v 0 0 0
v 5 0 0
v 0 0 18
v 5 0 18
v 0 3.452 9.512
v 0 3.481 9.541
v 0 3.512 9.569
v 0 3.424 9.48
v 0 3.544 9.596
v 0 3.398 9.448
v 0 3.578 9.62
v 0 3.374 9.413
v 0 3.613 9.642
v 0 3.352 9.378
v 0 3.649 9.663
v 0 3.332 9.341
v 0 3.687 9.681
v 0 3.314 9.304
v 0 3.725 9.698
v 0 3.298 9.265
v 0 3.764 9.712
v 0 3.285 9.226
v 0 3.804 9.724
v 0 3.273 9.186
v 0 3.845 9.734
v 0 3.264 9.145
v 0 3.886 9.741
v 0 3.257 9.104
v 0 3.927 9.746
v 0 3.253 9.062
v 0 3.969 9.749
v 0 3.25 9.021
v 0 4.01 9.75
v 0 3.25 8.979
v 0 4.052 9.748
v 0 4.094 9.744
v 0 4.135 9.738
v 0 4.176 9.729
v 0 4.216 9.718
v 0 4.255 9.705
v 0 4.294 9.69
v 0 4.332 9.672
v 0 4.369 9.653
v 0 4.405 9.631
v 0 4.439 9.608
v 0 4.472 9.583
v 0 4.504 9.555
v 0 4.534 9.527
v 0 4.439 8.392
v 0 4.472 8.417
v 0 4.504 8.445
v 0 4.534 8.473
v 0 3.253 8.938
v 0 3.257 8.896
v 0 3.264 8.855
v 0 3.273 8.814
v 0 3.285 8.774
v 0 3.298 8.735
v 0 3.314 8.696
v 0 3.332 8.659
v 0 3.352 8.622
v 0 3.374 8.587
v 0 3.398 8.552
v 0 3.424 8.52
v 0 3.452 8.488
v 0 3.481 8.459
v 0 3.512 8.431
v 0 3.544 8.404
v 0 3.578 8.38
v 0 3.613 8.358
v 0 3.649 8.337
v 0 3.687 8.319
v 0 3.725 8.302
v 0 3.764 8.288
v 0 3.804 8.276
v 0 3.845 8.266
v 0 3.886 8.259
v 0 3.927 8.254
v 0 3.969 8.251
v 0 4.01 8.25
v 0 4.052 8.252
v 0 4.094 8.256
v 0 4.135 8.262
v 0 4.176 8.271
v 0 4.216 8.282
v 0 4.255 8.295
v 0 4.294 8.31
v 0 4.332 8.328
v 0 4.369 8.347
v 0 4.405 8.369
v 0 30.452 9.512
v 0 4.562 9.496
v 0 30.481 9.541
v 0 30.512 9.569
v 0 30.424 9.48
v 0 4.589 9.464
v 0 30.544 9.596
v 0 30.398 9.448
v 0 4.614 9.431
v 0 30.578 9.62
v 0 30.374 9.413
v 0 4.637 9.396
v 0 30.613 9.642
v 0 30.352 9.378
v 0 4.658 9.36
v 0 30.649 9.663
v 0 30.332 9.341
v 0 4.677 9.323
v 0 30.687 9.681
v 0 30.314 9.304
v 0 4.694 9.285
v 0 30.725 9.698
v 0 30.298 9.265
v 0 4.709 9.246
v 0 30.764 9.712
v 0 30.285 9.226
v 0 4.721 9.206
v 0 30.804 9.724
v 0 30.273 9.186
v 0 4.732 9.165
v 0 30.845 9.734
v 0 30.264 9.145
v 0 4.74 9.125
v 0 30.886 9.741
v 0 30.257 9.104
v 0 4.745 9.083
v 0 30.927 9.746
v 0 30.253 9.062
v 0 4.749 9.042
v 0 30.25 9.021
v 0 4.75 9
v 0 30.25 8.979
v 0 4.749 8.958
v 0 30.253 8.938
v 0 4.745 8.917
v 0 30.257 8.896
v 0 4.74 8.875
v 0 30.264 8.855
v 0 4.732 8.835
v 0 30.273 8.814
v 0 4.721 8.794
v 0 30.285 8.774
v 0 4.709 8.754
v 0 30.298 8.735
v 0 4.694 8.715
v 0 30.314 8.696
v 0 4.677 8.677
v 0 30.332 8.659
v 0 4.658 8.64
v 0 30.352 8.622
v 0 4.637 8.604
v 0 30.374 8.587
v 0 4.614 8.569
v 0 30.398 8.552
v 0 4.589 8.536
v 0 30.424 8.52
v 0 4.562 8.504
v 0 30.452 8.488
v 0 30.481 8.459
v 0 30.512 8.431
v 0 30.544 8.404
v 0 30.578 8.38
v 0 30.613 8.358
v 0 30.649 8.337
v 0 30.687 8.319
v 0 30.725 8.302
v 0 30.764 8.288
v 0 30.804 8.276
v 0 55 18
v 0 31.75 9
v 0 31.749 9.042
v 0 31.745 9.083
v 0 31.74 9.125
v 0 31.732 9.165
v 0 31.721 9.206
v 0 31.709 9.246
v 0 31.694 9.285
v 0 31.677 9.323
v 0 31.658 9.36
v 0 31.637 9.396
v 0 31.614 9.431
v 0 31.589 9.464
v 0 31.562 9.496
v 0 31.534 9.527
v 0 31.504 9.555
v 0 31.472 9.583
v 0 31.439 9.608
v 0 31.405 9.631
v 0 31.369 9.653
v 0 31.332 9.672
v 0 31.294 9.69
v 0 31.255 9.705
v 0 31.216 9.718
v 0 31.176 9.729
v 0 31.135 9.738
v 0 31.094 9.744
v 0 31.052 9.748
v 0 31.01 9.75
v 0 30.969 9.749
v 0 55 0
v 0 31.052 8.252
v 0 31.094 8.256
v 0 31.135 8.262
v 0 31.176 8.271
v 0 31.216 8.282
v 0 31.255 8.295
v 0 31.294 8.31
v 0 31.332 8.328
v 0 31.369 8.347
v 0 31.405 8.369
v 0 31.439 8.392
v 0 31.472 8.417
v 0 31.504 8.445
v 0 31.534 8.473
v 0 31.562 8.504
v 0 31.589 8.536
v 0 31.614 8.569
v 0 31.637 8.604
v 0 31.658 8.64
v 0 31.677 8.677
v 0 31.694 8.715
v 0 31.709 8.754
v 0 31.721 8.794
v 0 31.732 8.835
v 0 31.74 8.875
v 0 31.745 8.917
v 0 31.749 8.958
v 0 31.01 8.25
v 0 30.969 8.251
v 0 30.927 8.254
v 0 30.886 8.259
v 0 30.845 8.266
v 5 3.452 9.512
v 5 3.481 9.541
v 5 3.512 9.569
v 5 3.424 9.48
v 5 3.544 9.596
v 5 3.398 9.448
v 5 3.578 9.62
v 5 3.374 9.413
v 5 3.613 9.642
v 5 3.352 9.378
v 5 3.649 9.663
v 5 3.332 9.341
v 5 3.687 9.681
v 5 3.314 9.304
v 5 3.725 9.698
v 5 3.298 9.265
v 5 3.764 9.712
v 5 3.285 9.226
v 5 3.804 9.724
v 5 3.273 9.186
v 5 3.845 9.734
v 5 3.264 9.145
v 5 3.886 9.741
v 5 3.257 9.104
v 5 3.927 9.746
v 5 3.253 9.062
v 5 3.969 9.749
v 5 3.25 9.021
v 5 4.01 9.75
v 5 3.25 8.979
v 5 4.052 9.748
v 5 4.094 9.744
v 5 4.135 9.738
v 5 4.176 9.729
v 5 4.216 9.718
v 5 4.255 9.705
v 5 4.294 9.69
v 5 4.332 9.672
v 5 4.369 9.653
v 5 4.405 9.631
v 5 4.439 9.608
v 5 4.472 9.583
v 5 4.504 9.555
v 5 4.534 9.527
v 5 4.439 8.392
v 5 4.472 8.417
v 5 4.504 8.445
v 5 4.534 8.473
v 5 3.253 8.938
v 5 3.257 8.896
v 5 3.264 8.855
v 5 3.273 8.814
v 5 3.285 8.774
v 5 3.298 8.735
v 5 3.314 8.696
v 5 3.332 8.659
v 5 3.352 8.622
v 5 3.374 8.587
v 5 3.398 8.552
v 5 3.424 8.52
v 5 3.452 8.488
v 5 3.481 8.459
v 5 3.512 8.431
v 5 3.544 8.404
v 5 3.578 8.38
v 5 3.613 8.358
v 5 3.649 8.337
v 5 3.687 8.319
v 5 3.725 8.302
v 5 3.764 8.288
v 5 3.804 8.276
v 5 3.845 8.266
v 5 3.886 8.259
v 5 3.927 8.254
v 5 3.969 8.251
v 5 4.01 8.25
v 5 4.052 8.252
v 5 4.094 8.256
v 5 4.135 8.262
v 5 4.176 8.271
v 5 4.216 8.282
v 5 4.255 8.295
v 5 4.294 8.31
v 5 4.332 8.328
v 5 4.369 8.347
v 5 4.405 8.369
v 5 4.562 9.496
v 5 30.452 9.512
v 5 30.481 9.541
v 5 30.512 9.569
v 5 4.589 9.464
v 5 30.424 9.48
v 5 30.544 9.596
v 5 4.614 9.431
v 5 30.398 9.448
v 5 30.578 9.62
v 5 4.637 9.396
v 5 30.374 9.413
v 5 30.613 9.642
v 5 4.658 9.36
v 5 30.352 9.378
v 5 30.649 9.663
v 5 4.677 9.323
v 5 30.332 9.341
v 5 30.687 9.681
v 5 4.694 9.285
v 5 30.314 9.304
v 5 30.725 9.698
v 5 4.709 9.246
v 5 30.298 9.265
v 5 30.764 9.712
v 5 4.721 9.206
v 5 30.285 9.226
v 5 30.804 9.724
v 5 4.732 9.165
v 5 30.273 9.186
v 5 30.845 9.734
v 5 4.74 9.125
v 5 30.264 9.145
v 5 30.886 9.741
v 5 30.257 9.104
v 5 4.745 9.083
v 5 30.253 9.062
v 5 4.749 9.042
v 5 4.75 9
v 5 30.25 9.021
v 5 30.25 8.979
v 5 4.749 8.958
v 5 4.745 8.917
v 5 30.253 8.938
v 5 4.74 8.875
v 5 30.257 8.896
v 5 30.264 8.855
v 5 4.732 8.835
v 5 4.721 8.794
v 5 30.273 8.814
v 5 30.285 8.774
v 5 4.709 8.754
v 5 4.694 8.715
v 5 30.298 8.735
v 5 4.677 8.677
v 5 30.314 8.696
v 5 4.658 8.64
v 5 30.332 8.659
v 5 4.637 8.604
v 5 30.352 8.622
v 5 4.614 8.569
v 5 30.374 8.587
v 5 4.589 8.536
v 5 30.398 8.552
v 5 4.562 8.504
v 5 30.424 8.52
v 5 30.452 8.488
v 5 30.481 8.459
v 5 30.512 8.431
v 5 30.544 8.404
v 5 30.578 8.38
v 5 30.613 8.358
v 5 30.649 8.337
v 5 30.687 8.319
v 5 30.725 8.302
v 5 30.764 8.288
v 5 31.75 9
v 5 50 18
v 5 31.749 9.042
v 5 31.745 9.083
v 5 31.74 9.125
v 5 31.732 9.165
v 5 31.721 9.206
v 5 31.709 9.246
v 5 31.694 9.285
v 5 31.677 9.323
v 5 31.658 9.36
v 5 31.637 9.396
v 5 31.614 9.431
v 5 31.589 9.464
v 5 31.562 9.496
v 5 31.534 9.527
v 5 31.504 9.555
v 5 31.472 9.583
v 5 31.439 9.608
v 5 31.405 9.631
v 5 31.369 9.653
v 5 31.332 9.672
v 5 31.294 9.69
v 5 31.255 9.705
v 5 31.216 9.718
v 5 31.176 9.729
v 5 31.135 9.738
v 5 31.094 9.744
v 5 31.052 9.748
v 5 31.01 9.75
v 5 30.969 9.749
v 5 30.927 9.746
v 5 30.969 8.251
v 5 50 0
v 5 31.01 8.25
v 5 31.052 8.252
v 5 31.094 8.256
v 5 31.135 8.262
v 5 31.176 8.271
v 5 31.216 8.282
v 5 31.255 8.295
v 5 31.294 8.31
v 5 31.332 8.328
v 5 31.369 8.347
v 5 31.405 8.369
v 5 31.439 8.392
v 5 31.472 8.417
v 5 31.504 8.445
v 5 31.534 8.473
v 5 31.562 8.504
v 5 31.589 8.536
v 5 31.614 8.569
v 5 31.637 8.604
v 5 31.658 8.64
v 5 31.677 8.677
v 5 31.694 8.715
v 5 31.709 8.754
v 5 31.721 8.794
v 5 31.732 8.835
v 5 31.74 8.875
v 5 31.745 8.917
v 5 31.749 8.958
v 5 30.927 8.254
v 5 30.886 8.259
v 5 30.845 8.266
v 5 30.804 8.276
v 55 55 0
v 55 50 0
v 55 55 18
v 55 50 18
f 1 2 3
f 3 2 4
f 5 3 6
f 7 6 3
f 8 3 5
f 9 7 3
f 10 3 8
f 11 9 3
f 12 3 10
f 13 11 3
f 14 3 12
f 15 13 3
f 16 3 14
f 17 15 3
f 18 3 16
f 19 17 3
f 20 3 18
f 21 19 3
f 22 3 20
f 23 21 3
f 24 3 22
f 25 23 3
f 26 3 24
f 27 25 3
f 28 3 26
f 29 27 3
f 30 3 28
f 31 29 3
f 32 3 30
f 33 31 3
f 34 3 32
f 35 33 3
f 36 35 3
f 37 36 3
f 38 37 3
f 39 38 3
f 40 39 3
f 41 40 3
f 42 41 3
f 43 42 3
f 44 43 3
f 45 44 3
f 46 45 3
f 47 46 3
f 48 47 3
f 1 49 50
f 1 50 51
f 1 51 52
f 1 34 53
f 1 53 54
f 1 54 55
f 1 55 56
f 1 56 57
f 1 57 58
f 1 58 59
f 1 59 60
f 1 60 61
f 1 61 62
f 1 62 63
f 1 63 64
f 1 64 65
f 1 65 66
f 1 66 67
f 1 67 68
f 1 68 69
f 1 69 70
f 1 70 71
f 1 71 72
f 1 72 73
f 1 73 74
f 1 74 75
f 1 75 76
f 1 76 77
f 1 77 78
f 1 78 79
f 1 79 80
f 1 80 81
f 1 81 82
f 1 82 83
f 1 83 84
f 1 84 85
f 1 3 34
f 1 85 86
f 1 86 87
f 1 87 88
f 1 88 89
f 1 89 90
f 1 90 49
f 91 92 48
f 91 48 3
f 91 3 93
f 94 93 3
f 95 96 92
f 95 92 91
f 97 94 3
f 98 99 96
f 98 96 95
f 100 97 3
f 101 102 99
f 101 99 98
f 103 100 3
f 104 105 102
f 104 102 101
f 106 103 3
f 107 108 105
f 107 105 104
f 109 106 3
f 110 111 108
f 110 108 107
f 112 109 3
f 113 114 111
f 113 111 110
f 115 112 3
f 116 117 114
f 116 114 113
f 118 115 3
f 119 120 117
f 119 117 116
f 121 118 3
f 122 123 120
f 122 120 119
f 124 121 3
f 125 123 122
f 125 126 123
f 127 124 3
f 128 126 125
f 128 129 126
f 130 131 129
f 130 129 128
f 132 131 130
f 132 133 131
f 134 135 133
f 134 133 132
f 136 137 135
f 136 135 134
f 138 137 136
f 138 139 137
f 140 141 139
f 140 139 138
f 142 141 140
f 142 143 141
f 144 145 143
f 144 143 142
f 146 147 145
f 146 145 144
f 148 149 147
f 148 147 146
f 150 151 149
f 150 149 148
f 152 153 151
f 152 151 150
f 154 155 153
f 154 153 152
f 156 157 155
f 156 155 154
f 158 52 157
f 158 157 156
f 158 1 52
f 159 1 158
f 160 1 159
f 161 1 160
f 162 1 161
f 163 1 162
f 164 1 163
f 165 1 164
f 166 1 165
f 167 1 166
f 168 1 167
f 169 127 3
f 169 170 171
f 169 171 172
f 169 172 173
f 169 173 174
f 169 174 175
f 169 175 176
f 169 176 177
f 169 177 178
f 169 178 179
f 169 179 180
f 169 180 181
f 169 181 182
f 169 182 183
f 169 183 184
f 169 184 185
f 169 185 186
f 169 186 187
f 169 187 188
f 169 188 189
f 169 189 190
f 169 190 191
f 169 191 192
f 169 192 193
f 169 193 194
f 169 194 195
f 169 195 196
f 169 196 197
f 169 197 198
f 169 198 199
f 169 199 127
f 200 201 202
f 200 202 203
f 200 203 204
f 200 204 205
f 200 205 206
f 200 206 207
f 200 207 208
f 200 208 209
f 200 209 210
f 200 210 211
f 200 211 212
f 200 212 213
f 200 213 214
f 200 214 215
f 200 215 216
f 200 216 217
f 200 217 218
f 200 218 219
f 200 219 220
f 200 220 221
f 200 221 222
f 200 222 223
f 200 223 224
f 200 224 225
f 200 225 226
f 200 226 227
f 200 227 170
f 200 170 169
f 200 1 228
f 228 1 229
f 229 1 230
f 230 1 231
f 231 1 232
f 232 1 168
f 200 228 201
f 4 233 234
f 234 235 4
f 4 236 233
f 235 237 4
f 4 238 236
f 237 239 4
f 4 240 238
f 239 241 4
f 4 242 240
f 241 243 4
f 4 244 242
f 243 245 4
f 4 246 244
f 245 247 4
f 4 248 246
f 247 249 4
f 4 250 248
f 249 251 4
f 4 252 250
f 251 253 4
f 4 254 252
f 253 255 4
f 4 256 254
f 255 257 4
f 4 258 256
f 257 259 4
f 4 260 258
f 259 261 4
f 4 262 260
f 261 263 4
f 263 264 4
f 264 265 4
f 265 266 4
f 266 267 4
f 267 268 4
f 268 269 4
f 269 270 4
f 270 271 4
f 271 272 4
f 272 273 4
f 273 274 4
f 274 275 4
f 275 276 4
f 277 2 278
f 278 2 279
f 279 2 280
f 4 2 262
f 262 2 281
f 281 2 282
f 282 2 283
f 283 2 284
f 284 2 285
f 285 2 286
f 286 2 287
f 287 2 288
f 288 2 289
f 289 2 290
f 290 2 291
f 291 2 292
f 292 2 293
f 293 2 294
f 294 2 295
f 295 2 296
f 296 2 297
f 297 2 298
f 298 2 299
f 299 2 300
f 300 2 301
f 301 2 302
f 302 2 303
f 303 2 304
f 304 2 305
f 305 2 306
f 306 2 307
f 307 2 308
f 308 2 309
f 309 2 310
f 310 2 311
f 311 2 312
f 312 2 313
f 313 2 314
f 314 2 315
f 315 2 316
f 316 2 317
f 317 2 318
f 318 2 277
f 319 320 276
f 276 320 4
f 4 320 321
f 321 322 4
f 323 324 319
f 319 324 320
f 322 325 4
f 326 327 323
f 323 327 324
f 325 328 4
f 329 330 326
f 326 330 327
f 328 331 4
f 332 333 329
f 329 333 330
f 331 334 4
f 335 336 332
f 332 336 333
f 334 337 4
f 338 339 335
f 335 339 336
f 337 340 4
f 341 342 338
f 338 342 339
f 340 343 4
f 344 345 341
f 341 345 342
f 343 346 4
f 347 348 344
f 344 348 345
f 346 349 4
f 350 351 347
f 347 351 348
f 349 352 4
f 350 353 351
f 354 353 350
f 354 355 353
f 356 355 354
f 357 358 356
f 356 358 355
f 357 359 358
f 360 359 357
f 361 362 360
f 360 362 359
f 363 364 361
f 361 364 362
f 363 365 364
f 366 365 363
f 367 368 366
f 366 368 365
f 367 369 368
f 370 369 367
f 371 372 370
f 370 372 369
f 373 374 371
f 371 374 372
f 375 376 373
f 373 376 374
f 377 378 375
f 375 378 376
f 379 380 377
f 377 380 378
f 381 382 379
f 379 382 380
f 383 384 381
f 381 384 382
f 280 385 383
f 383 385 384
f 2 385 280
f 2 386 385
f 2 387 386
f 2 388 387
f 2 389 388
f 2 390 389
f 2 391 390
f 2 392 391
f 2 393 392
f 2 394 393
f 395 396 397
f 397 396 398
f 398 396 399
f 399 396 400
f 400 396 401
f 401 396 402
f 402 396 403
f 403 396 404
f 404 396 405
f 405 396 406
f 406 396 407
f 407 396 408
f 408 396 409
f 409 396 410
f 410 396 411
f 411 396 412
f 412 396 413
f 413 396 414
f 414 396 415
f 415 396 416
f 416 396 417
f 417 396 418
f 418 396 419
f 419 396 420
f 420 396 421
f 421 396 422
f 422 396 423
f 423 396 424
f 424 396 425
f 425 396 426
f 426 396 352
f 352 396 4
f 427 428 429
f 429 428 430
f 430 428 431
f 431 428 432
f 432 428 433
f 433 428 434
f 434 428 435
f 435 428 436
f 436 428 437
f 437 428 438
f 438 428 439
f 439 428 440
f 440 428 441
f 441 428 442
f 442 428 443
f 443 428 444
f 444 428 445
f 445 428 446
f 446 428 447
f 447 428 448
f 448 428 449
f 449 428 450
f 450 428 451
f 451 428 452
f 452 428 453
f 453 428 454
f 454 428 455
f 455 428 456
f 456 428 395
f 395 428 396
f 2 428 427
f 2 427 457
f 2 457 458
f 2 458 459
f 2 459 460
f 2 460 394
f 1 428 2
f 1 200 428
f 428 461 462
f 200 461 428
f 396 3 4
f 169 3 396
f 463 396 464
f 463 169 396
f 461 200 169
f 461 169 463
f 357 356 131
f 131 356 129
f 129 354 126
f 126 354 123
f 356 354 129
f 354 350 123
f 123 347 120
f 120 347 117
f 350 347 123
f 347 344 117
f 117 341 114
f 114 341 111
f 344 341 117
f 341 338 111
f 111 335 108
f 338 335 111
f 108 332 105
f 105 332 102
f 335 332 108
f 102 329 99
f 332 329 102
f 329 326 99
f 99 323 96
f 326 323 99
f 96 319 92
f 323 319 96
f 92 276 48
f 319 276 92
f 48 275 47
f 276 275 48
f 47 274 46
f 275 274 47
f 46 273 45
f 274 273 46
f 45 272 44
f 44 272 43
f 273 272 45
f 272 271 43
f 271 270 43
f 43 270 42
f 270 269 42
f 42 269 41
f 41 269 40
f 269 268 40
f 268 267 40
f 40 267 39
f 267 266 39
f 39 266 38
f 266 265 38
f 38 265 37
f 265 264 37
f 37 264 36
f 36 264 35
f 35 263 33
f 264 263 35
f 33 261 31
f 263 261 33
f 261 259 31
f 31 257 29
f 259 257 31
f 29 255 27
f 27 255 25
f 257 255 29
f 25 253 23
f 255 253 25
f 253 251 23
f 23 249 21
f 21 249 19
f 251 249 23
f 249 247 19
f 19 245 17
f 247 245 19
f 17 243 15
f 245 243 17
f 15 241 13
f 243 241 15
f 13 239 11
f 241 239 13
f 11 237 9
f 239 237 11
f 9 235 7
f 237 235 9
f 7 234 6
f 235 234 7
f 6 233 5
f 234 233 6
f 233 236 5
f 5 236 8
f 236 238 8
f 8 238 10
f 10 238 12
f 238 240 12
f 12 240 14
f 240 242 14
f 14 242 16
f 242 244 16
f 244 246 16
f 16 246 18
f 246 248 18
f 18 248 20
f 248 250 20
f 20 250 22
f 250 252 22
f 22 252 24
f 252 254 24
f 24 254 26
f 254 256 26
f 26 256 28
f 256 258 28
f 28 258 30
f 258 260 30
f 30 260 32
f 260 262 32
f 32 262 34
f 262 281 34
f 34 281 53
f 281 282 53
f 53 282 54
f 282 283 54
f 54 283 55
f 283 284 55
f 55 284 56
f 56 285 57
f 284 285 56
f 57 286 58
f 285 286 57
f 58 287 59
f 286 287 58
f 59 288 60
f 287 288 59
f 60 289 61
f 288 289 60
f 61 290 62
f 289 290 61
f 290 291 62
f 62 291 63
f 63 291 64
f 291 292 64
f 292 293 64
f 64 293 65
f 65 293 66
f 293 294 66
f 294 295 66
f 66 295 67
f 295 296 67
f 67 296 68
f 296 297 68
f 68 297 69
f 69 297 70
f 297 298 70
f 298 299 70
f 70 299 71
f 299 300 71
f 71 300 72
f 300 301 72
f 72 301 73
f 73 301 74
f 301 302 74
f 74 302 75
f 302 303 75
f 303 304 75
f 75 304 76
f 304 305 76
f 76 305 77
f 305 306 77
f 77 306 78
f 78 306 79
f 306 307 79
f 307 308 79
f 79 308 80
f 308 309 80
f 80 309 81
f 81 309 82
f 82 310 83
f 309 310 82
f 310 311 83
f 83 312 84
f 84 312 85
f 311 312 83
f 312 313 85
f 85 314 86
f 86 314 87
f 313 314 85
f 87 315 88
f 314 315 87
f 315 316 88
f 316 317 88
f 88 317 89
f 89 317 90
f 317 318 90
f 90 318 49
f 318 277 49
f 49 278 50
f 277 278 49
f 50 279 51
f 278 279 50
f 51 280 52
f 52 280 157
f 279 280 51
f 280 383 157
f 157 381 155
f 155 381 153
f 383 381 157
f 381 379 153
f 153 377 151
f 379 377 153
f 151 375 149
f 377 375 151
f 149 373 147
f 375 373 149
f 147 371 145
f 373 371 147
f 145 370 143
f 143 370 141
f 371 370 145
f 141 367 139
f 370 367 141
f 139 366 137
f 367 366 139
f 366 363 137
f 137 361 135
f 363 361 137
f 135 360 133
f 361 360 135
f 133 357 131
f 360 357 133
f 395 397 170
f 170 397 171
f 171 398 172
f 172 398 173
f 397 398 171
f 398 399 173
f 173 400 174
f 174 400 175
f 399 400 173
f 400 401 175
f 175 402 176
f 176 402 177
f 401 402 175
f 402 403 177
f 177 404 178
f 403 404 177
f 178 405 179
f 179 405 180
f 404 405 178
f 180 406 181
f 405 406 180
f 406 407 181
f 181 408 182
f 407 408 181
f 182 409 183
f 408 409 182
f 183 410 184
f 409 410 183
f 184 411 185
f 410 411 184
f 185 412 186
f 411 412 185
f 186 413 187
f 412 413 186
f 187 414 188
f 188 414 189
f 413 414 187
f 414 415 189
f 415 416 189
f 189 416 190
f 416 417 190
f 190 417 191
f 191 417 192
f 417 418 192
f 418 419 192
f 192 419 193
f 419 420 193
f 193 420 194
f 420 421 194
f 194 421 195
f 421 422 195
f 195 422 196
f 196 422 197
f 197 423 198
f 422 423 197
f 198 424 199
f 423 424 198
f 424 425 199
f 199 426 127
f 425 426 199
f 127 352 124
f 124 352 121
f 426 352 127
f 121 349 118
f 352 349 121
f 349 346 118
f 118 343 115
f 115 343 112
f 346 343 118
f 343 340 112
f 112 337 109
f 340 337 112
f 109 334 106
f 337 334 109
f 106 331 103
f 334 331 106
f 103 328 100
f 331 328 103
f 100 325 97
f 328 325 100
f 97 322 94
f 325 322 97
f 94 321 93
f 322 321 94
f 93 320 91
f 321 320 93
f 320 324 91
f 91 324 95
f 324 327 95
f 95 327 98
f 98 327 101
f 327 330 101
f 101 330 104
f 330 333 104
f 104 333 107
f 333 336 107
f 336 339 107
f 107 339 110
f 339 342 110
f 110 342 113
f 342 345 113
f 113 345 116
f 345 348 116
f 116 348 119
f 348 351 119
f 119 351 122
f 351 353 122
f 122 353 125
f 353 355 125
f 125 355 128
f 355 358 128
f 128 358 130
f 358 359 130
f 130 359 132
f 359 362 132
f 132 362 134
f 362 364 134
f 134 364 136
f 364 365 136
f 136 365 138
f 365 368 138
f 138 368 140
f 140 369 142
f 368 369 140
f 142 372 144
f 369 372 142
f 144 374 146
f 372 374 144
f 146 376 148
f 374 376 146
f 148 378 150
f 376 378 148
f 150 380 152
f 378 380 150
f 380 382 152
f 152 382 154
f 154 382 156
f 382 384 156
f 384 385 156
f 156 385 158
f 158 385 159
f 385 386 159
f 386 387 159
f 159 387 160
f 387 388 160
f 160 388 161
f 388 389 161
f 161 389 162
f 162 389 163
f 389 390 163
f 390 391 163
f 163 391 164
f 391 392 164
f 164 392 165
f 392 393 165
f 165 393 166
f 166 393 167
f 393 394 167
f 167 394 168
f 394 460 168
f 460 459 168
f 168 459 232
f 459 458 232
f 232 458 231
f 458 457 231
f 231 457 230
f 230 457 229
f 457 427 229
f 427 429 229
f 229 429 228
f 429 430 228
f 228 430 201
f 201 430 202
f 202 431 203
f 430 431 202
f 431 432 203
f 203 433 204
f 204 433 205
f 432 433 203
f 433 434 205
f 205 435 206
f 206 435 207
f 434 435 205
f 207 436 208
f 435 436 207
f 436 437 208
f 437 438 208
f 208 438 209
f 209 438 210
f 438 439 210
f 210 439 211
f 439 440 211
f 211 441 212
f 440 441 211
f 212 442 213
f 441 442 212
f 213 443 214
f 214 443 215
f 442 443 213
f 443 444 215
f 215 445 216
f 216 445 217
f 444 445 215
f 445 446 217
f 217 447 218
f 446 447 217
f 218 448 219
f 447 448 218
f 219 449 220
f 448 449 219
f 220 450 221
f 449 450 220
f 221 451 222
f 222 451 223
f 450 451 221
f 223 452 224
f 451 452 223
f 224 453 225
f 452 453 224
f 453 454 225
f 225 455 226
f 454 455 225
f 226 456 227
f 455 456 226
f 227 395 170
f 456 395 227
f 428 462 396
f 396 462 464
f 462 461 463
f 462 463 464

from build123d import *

# Parameters (mm, degrees)
PAD_DEPTH    = 18
SKETCH001_R  = 0.75
POCKET_DEPTH = 5.001


with BuildPart() as part:
    # Sketch → Pad (new body)
    with BuildSketch(Plane.XY):
        Polygon((5, 0), (5, 50), (55, 50), (55, 55), (0, 55), (0, 0), align=None)
    extrude(amount=PAD_DEPTH)

    # Sketch001 (on Face2 of Pad) → Pocket (cut, through all)
    with BuildSketch(Plane.YZ.offset(5)):
        with Locations((4, 9)):
            Circle(SKETCH001_R)
        with Locations((31, 9)):
            Circle(SKETCH001_R)
    extrude(amount=-POCKET_DEPTH, mode=Mode.SUBTRACT)


solid = part.part
